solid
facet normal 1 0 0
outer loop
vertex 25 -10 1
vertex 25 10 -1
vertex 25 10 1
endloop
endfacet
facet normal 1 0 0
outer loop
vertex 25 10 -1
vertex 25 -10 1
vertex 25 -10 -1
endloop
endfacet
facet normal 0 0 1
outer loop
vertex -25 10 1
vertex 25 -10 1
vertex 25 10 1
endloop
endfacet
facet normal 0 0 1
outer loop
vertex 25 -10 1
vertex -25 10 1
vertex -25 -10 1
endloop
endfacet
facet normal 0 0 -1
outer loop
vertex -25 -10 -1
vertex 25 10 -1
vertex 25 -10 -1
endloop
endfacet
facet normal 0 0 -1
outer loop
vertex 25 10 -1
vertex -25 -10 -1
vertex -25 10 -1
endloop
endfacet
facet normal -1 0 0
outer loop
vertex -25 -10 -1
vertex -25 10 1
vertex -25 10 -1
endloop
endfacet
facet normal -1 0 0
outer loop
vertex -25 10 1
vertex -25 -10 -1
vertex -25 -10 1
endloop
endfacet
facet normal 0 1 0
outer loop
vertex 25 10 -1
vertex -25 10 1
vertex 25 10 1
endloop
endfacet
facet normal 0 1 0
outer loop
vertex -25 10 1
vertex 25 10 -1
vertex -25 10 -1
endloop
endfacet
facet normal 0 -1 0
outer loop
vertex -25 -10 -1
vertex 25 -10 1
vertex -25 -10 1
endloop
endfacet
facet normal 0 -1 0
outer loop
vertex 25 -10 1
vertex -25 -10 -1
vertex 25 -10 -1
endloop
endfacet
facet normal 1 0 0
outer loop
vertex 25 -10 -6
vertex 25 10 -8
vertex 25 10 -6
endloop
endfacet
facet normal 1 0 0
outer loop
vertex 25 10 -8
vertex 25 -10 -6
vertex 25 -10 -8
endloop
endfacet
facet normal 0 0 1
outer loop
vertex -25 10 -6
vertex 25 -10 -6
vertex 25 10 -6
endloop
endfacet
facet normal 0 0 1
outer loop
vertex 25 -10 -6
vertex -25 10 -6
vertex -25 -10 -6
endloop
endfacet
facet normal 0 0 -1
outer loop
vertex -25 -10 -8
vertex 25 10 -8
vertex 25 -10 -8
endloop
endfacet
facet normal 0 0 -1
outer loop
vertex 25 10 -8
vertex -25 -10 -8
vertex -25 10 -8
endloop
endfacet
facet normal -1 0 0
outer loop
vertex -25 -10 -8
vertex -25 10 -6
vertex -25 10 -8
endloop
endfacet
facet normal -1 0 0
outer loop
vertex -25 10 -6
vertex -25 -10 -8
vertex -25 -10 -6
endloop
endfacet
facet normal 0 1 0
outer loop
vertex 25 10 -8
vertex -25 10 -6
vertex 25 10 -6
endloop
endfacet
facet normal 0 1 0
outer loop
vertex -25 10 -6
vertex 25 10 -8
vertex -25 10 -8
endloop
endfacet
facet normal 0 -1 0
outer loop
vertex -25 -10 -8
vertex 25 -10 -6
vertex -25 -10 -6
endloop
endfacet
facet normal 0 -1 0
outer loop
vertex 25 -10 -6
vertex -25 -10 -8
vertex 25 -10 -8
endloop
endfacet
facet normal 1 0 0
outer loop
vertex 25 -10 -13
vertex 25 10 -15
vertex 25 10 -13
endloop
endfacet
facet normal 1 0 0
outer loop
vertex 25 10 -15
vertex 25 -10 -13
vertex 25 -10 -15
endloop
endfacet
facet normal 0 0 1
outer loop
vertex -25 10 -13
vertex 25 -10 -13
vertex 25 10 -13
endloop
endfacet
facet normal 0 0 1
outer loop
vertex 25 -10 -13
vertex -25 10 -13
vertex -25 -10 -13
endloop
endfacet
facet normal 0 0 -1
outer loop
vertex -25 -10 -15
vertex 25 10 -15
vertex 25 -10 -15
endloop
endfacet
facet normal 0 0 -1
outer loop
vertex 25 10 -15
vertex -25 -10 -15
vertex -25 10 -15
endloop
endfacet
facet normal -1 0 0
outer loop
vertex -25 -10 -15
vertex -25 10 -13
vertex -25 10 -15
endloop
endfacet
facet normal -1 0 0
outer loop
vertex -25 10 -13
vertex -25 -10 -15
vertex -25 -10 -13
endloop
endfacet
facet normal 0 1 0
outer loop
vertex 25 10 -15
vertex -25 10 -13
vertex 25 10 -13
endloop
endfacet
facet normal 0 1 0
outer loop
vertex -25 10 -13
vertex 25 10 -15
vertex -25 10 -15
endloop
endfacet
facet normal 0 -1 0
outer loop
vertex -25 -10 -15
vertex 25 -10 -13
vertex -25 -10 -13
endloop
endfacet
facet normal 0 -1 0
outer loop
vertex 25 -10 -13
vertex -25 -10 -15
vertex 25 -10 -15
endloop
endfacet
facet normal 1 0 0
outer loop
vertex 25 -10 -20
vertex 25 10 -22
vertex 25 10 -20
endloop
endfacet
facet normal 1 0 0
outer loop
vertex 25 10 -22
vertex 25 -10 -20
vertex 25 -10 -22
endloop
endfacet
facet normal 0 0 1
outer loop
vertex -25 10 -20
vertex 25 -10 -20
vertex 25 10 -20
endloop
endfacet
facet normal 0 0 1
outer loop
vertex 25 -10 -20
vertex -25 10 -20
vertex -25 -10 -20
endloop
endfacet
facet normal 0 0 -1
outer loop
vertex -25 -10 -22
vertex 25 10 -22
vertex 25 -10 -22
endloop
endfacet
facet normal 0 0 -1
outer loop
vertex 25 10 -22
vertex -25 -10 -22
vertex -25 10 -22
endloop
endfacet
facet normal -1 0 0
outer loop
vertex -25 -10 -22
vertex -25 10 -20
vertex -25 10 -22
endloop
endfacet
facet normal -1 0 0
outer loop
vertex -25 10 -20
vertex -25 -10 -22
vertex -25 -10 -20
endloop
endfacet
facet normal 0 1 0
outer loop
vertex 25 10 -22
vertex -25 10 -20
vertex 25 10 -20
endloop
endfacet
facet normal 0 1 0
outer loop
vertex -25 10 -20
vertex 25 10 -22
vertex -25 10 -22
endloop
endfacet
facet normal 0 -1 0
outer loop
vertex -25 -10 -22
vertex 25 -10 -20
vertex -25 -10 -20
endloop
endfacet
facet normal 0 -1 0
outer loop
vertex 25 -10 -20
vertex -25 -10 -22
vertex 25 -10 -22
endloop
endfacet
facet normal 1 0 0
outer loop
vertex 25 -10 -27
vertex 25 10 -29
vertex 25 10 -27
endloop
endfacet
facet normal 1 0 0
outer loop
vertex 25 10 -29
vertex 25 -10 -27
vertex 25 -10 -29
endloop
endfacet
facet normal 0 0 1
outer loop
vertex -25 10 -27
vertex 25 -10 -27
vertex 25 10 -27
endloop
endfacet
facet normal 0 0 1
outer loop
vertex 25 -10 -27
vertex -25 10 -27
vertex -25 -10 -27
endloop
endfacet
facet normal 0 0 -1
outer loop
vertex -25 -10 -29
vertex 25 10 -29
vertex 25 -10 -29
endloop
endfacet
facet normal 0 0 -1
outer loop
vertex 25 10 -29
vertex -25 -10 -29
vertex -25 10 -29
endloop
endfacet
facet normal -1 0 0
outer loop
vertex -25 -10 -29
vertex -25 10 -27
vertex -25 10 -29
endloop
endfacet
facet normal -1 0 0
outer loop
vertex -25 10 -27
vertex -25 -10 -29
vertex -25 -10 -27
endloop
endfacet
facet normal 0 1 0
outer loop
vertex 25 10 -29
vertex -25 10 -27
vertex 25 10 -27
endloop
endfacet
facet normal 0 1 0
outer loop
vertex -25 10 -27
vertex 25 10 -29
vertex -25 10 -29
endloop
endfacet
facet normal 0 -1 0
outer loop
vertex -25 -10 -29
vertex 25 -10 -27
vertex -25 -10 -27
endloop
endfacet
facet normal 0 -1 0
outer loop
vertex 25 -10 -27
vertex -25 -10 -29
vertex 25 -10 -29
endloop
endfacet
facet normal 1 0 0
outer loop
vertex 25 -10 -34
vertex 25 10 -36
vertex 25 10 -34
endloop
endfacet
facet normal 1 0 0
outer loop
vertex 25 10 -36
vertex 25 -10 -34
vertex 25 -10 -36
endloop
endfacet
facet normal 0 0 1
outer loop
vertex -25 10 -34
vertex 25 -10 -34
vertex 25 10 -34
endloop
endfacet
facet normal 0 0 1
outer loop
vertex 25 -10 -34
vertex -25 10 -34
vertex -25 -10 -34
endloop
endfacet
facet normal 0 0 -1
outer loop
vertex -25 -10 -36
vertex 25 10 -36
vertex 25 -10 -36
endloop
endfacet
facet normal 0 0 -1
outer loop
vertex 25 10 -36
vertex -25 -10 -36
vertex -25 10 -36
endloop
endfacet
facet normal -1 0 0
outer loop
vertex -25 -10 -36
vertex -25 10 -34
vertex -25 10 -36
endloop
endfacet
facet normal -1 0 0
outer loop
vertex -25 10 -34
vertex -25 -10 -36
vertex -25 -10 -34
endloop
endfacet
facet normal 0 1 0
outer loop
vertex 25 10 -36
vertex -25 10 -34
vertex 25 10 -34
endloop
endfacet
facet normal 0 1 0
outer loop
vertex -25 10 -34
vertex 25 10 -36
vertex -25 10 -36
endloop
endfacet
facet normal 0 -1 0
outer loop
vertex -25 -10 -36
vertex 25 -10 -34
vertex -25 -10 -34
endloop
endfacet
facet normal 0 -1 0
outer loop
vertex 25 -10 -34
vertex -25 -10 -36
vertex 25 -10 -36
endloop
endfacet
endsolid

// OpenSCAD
// Define the dimensions of the rectangular plate
plate_length = 50;  // Length of the plate
plate_width = 20;   // Width of the plate
plate_thickness = 2; // Thickness of the plate

// Define the spacing between the layers
layer_spacing = 5; // Distance between each plate

// Function to create a rectangular plate
module rectangular_plate() {
    cube([plate_length, plate_width, plate_thickness], center = true);
}

// Assemble the layers of rectangular plates
module flexible_coupling() {
    for (i = [0:5]) {
        translate([0, 0, -i * (plate_thickness + layer_spacing)])
            rectangular_plate();
    }
}

// Render the flexible coupling
flexible_coupling();
